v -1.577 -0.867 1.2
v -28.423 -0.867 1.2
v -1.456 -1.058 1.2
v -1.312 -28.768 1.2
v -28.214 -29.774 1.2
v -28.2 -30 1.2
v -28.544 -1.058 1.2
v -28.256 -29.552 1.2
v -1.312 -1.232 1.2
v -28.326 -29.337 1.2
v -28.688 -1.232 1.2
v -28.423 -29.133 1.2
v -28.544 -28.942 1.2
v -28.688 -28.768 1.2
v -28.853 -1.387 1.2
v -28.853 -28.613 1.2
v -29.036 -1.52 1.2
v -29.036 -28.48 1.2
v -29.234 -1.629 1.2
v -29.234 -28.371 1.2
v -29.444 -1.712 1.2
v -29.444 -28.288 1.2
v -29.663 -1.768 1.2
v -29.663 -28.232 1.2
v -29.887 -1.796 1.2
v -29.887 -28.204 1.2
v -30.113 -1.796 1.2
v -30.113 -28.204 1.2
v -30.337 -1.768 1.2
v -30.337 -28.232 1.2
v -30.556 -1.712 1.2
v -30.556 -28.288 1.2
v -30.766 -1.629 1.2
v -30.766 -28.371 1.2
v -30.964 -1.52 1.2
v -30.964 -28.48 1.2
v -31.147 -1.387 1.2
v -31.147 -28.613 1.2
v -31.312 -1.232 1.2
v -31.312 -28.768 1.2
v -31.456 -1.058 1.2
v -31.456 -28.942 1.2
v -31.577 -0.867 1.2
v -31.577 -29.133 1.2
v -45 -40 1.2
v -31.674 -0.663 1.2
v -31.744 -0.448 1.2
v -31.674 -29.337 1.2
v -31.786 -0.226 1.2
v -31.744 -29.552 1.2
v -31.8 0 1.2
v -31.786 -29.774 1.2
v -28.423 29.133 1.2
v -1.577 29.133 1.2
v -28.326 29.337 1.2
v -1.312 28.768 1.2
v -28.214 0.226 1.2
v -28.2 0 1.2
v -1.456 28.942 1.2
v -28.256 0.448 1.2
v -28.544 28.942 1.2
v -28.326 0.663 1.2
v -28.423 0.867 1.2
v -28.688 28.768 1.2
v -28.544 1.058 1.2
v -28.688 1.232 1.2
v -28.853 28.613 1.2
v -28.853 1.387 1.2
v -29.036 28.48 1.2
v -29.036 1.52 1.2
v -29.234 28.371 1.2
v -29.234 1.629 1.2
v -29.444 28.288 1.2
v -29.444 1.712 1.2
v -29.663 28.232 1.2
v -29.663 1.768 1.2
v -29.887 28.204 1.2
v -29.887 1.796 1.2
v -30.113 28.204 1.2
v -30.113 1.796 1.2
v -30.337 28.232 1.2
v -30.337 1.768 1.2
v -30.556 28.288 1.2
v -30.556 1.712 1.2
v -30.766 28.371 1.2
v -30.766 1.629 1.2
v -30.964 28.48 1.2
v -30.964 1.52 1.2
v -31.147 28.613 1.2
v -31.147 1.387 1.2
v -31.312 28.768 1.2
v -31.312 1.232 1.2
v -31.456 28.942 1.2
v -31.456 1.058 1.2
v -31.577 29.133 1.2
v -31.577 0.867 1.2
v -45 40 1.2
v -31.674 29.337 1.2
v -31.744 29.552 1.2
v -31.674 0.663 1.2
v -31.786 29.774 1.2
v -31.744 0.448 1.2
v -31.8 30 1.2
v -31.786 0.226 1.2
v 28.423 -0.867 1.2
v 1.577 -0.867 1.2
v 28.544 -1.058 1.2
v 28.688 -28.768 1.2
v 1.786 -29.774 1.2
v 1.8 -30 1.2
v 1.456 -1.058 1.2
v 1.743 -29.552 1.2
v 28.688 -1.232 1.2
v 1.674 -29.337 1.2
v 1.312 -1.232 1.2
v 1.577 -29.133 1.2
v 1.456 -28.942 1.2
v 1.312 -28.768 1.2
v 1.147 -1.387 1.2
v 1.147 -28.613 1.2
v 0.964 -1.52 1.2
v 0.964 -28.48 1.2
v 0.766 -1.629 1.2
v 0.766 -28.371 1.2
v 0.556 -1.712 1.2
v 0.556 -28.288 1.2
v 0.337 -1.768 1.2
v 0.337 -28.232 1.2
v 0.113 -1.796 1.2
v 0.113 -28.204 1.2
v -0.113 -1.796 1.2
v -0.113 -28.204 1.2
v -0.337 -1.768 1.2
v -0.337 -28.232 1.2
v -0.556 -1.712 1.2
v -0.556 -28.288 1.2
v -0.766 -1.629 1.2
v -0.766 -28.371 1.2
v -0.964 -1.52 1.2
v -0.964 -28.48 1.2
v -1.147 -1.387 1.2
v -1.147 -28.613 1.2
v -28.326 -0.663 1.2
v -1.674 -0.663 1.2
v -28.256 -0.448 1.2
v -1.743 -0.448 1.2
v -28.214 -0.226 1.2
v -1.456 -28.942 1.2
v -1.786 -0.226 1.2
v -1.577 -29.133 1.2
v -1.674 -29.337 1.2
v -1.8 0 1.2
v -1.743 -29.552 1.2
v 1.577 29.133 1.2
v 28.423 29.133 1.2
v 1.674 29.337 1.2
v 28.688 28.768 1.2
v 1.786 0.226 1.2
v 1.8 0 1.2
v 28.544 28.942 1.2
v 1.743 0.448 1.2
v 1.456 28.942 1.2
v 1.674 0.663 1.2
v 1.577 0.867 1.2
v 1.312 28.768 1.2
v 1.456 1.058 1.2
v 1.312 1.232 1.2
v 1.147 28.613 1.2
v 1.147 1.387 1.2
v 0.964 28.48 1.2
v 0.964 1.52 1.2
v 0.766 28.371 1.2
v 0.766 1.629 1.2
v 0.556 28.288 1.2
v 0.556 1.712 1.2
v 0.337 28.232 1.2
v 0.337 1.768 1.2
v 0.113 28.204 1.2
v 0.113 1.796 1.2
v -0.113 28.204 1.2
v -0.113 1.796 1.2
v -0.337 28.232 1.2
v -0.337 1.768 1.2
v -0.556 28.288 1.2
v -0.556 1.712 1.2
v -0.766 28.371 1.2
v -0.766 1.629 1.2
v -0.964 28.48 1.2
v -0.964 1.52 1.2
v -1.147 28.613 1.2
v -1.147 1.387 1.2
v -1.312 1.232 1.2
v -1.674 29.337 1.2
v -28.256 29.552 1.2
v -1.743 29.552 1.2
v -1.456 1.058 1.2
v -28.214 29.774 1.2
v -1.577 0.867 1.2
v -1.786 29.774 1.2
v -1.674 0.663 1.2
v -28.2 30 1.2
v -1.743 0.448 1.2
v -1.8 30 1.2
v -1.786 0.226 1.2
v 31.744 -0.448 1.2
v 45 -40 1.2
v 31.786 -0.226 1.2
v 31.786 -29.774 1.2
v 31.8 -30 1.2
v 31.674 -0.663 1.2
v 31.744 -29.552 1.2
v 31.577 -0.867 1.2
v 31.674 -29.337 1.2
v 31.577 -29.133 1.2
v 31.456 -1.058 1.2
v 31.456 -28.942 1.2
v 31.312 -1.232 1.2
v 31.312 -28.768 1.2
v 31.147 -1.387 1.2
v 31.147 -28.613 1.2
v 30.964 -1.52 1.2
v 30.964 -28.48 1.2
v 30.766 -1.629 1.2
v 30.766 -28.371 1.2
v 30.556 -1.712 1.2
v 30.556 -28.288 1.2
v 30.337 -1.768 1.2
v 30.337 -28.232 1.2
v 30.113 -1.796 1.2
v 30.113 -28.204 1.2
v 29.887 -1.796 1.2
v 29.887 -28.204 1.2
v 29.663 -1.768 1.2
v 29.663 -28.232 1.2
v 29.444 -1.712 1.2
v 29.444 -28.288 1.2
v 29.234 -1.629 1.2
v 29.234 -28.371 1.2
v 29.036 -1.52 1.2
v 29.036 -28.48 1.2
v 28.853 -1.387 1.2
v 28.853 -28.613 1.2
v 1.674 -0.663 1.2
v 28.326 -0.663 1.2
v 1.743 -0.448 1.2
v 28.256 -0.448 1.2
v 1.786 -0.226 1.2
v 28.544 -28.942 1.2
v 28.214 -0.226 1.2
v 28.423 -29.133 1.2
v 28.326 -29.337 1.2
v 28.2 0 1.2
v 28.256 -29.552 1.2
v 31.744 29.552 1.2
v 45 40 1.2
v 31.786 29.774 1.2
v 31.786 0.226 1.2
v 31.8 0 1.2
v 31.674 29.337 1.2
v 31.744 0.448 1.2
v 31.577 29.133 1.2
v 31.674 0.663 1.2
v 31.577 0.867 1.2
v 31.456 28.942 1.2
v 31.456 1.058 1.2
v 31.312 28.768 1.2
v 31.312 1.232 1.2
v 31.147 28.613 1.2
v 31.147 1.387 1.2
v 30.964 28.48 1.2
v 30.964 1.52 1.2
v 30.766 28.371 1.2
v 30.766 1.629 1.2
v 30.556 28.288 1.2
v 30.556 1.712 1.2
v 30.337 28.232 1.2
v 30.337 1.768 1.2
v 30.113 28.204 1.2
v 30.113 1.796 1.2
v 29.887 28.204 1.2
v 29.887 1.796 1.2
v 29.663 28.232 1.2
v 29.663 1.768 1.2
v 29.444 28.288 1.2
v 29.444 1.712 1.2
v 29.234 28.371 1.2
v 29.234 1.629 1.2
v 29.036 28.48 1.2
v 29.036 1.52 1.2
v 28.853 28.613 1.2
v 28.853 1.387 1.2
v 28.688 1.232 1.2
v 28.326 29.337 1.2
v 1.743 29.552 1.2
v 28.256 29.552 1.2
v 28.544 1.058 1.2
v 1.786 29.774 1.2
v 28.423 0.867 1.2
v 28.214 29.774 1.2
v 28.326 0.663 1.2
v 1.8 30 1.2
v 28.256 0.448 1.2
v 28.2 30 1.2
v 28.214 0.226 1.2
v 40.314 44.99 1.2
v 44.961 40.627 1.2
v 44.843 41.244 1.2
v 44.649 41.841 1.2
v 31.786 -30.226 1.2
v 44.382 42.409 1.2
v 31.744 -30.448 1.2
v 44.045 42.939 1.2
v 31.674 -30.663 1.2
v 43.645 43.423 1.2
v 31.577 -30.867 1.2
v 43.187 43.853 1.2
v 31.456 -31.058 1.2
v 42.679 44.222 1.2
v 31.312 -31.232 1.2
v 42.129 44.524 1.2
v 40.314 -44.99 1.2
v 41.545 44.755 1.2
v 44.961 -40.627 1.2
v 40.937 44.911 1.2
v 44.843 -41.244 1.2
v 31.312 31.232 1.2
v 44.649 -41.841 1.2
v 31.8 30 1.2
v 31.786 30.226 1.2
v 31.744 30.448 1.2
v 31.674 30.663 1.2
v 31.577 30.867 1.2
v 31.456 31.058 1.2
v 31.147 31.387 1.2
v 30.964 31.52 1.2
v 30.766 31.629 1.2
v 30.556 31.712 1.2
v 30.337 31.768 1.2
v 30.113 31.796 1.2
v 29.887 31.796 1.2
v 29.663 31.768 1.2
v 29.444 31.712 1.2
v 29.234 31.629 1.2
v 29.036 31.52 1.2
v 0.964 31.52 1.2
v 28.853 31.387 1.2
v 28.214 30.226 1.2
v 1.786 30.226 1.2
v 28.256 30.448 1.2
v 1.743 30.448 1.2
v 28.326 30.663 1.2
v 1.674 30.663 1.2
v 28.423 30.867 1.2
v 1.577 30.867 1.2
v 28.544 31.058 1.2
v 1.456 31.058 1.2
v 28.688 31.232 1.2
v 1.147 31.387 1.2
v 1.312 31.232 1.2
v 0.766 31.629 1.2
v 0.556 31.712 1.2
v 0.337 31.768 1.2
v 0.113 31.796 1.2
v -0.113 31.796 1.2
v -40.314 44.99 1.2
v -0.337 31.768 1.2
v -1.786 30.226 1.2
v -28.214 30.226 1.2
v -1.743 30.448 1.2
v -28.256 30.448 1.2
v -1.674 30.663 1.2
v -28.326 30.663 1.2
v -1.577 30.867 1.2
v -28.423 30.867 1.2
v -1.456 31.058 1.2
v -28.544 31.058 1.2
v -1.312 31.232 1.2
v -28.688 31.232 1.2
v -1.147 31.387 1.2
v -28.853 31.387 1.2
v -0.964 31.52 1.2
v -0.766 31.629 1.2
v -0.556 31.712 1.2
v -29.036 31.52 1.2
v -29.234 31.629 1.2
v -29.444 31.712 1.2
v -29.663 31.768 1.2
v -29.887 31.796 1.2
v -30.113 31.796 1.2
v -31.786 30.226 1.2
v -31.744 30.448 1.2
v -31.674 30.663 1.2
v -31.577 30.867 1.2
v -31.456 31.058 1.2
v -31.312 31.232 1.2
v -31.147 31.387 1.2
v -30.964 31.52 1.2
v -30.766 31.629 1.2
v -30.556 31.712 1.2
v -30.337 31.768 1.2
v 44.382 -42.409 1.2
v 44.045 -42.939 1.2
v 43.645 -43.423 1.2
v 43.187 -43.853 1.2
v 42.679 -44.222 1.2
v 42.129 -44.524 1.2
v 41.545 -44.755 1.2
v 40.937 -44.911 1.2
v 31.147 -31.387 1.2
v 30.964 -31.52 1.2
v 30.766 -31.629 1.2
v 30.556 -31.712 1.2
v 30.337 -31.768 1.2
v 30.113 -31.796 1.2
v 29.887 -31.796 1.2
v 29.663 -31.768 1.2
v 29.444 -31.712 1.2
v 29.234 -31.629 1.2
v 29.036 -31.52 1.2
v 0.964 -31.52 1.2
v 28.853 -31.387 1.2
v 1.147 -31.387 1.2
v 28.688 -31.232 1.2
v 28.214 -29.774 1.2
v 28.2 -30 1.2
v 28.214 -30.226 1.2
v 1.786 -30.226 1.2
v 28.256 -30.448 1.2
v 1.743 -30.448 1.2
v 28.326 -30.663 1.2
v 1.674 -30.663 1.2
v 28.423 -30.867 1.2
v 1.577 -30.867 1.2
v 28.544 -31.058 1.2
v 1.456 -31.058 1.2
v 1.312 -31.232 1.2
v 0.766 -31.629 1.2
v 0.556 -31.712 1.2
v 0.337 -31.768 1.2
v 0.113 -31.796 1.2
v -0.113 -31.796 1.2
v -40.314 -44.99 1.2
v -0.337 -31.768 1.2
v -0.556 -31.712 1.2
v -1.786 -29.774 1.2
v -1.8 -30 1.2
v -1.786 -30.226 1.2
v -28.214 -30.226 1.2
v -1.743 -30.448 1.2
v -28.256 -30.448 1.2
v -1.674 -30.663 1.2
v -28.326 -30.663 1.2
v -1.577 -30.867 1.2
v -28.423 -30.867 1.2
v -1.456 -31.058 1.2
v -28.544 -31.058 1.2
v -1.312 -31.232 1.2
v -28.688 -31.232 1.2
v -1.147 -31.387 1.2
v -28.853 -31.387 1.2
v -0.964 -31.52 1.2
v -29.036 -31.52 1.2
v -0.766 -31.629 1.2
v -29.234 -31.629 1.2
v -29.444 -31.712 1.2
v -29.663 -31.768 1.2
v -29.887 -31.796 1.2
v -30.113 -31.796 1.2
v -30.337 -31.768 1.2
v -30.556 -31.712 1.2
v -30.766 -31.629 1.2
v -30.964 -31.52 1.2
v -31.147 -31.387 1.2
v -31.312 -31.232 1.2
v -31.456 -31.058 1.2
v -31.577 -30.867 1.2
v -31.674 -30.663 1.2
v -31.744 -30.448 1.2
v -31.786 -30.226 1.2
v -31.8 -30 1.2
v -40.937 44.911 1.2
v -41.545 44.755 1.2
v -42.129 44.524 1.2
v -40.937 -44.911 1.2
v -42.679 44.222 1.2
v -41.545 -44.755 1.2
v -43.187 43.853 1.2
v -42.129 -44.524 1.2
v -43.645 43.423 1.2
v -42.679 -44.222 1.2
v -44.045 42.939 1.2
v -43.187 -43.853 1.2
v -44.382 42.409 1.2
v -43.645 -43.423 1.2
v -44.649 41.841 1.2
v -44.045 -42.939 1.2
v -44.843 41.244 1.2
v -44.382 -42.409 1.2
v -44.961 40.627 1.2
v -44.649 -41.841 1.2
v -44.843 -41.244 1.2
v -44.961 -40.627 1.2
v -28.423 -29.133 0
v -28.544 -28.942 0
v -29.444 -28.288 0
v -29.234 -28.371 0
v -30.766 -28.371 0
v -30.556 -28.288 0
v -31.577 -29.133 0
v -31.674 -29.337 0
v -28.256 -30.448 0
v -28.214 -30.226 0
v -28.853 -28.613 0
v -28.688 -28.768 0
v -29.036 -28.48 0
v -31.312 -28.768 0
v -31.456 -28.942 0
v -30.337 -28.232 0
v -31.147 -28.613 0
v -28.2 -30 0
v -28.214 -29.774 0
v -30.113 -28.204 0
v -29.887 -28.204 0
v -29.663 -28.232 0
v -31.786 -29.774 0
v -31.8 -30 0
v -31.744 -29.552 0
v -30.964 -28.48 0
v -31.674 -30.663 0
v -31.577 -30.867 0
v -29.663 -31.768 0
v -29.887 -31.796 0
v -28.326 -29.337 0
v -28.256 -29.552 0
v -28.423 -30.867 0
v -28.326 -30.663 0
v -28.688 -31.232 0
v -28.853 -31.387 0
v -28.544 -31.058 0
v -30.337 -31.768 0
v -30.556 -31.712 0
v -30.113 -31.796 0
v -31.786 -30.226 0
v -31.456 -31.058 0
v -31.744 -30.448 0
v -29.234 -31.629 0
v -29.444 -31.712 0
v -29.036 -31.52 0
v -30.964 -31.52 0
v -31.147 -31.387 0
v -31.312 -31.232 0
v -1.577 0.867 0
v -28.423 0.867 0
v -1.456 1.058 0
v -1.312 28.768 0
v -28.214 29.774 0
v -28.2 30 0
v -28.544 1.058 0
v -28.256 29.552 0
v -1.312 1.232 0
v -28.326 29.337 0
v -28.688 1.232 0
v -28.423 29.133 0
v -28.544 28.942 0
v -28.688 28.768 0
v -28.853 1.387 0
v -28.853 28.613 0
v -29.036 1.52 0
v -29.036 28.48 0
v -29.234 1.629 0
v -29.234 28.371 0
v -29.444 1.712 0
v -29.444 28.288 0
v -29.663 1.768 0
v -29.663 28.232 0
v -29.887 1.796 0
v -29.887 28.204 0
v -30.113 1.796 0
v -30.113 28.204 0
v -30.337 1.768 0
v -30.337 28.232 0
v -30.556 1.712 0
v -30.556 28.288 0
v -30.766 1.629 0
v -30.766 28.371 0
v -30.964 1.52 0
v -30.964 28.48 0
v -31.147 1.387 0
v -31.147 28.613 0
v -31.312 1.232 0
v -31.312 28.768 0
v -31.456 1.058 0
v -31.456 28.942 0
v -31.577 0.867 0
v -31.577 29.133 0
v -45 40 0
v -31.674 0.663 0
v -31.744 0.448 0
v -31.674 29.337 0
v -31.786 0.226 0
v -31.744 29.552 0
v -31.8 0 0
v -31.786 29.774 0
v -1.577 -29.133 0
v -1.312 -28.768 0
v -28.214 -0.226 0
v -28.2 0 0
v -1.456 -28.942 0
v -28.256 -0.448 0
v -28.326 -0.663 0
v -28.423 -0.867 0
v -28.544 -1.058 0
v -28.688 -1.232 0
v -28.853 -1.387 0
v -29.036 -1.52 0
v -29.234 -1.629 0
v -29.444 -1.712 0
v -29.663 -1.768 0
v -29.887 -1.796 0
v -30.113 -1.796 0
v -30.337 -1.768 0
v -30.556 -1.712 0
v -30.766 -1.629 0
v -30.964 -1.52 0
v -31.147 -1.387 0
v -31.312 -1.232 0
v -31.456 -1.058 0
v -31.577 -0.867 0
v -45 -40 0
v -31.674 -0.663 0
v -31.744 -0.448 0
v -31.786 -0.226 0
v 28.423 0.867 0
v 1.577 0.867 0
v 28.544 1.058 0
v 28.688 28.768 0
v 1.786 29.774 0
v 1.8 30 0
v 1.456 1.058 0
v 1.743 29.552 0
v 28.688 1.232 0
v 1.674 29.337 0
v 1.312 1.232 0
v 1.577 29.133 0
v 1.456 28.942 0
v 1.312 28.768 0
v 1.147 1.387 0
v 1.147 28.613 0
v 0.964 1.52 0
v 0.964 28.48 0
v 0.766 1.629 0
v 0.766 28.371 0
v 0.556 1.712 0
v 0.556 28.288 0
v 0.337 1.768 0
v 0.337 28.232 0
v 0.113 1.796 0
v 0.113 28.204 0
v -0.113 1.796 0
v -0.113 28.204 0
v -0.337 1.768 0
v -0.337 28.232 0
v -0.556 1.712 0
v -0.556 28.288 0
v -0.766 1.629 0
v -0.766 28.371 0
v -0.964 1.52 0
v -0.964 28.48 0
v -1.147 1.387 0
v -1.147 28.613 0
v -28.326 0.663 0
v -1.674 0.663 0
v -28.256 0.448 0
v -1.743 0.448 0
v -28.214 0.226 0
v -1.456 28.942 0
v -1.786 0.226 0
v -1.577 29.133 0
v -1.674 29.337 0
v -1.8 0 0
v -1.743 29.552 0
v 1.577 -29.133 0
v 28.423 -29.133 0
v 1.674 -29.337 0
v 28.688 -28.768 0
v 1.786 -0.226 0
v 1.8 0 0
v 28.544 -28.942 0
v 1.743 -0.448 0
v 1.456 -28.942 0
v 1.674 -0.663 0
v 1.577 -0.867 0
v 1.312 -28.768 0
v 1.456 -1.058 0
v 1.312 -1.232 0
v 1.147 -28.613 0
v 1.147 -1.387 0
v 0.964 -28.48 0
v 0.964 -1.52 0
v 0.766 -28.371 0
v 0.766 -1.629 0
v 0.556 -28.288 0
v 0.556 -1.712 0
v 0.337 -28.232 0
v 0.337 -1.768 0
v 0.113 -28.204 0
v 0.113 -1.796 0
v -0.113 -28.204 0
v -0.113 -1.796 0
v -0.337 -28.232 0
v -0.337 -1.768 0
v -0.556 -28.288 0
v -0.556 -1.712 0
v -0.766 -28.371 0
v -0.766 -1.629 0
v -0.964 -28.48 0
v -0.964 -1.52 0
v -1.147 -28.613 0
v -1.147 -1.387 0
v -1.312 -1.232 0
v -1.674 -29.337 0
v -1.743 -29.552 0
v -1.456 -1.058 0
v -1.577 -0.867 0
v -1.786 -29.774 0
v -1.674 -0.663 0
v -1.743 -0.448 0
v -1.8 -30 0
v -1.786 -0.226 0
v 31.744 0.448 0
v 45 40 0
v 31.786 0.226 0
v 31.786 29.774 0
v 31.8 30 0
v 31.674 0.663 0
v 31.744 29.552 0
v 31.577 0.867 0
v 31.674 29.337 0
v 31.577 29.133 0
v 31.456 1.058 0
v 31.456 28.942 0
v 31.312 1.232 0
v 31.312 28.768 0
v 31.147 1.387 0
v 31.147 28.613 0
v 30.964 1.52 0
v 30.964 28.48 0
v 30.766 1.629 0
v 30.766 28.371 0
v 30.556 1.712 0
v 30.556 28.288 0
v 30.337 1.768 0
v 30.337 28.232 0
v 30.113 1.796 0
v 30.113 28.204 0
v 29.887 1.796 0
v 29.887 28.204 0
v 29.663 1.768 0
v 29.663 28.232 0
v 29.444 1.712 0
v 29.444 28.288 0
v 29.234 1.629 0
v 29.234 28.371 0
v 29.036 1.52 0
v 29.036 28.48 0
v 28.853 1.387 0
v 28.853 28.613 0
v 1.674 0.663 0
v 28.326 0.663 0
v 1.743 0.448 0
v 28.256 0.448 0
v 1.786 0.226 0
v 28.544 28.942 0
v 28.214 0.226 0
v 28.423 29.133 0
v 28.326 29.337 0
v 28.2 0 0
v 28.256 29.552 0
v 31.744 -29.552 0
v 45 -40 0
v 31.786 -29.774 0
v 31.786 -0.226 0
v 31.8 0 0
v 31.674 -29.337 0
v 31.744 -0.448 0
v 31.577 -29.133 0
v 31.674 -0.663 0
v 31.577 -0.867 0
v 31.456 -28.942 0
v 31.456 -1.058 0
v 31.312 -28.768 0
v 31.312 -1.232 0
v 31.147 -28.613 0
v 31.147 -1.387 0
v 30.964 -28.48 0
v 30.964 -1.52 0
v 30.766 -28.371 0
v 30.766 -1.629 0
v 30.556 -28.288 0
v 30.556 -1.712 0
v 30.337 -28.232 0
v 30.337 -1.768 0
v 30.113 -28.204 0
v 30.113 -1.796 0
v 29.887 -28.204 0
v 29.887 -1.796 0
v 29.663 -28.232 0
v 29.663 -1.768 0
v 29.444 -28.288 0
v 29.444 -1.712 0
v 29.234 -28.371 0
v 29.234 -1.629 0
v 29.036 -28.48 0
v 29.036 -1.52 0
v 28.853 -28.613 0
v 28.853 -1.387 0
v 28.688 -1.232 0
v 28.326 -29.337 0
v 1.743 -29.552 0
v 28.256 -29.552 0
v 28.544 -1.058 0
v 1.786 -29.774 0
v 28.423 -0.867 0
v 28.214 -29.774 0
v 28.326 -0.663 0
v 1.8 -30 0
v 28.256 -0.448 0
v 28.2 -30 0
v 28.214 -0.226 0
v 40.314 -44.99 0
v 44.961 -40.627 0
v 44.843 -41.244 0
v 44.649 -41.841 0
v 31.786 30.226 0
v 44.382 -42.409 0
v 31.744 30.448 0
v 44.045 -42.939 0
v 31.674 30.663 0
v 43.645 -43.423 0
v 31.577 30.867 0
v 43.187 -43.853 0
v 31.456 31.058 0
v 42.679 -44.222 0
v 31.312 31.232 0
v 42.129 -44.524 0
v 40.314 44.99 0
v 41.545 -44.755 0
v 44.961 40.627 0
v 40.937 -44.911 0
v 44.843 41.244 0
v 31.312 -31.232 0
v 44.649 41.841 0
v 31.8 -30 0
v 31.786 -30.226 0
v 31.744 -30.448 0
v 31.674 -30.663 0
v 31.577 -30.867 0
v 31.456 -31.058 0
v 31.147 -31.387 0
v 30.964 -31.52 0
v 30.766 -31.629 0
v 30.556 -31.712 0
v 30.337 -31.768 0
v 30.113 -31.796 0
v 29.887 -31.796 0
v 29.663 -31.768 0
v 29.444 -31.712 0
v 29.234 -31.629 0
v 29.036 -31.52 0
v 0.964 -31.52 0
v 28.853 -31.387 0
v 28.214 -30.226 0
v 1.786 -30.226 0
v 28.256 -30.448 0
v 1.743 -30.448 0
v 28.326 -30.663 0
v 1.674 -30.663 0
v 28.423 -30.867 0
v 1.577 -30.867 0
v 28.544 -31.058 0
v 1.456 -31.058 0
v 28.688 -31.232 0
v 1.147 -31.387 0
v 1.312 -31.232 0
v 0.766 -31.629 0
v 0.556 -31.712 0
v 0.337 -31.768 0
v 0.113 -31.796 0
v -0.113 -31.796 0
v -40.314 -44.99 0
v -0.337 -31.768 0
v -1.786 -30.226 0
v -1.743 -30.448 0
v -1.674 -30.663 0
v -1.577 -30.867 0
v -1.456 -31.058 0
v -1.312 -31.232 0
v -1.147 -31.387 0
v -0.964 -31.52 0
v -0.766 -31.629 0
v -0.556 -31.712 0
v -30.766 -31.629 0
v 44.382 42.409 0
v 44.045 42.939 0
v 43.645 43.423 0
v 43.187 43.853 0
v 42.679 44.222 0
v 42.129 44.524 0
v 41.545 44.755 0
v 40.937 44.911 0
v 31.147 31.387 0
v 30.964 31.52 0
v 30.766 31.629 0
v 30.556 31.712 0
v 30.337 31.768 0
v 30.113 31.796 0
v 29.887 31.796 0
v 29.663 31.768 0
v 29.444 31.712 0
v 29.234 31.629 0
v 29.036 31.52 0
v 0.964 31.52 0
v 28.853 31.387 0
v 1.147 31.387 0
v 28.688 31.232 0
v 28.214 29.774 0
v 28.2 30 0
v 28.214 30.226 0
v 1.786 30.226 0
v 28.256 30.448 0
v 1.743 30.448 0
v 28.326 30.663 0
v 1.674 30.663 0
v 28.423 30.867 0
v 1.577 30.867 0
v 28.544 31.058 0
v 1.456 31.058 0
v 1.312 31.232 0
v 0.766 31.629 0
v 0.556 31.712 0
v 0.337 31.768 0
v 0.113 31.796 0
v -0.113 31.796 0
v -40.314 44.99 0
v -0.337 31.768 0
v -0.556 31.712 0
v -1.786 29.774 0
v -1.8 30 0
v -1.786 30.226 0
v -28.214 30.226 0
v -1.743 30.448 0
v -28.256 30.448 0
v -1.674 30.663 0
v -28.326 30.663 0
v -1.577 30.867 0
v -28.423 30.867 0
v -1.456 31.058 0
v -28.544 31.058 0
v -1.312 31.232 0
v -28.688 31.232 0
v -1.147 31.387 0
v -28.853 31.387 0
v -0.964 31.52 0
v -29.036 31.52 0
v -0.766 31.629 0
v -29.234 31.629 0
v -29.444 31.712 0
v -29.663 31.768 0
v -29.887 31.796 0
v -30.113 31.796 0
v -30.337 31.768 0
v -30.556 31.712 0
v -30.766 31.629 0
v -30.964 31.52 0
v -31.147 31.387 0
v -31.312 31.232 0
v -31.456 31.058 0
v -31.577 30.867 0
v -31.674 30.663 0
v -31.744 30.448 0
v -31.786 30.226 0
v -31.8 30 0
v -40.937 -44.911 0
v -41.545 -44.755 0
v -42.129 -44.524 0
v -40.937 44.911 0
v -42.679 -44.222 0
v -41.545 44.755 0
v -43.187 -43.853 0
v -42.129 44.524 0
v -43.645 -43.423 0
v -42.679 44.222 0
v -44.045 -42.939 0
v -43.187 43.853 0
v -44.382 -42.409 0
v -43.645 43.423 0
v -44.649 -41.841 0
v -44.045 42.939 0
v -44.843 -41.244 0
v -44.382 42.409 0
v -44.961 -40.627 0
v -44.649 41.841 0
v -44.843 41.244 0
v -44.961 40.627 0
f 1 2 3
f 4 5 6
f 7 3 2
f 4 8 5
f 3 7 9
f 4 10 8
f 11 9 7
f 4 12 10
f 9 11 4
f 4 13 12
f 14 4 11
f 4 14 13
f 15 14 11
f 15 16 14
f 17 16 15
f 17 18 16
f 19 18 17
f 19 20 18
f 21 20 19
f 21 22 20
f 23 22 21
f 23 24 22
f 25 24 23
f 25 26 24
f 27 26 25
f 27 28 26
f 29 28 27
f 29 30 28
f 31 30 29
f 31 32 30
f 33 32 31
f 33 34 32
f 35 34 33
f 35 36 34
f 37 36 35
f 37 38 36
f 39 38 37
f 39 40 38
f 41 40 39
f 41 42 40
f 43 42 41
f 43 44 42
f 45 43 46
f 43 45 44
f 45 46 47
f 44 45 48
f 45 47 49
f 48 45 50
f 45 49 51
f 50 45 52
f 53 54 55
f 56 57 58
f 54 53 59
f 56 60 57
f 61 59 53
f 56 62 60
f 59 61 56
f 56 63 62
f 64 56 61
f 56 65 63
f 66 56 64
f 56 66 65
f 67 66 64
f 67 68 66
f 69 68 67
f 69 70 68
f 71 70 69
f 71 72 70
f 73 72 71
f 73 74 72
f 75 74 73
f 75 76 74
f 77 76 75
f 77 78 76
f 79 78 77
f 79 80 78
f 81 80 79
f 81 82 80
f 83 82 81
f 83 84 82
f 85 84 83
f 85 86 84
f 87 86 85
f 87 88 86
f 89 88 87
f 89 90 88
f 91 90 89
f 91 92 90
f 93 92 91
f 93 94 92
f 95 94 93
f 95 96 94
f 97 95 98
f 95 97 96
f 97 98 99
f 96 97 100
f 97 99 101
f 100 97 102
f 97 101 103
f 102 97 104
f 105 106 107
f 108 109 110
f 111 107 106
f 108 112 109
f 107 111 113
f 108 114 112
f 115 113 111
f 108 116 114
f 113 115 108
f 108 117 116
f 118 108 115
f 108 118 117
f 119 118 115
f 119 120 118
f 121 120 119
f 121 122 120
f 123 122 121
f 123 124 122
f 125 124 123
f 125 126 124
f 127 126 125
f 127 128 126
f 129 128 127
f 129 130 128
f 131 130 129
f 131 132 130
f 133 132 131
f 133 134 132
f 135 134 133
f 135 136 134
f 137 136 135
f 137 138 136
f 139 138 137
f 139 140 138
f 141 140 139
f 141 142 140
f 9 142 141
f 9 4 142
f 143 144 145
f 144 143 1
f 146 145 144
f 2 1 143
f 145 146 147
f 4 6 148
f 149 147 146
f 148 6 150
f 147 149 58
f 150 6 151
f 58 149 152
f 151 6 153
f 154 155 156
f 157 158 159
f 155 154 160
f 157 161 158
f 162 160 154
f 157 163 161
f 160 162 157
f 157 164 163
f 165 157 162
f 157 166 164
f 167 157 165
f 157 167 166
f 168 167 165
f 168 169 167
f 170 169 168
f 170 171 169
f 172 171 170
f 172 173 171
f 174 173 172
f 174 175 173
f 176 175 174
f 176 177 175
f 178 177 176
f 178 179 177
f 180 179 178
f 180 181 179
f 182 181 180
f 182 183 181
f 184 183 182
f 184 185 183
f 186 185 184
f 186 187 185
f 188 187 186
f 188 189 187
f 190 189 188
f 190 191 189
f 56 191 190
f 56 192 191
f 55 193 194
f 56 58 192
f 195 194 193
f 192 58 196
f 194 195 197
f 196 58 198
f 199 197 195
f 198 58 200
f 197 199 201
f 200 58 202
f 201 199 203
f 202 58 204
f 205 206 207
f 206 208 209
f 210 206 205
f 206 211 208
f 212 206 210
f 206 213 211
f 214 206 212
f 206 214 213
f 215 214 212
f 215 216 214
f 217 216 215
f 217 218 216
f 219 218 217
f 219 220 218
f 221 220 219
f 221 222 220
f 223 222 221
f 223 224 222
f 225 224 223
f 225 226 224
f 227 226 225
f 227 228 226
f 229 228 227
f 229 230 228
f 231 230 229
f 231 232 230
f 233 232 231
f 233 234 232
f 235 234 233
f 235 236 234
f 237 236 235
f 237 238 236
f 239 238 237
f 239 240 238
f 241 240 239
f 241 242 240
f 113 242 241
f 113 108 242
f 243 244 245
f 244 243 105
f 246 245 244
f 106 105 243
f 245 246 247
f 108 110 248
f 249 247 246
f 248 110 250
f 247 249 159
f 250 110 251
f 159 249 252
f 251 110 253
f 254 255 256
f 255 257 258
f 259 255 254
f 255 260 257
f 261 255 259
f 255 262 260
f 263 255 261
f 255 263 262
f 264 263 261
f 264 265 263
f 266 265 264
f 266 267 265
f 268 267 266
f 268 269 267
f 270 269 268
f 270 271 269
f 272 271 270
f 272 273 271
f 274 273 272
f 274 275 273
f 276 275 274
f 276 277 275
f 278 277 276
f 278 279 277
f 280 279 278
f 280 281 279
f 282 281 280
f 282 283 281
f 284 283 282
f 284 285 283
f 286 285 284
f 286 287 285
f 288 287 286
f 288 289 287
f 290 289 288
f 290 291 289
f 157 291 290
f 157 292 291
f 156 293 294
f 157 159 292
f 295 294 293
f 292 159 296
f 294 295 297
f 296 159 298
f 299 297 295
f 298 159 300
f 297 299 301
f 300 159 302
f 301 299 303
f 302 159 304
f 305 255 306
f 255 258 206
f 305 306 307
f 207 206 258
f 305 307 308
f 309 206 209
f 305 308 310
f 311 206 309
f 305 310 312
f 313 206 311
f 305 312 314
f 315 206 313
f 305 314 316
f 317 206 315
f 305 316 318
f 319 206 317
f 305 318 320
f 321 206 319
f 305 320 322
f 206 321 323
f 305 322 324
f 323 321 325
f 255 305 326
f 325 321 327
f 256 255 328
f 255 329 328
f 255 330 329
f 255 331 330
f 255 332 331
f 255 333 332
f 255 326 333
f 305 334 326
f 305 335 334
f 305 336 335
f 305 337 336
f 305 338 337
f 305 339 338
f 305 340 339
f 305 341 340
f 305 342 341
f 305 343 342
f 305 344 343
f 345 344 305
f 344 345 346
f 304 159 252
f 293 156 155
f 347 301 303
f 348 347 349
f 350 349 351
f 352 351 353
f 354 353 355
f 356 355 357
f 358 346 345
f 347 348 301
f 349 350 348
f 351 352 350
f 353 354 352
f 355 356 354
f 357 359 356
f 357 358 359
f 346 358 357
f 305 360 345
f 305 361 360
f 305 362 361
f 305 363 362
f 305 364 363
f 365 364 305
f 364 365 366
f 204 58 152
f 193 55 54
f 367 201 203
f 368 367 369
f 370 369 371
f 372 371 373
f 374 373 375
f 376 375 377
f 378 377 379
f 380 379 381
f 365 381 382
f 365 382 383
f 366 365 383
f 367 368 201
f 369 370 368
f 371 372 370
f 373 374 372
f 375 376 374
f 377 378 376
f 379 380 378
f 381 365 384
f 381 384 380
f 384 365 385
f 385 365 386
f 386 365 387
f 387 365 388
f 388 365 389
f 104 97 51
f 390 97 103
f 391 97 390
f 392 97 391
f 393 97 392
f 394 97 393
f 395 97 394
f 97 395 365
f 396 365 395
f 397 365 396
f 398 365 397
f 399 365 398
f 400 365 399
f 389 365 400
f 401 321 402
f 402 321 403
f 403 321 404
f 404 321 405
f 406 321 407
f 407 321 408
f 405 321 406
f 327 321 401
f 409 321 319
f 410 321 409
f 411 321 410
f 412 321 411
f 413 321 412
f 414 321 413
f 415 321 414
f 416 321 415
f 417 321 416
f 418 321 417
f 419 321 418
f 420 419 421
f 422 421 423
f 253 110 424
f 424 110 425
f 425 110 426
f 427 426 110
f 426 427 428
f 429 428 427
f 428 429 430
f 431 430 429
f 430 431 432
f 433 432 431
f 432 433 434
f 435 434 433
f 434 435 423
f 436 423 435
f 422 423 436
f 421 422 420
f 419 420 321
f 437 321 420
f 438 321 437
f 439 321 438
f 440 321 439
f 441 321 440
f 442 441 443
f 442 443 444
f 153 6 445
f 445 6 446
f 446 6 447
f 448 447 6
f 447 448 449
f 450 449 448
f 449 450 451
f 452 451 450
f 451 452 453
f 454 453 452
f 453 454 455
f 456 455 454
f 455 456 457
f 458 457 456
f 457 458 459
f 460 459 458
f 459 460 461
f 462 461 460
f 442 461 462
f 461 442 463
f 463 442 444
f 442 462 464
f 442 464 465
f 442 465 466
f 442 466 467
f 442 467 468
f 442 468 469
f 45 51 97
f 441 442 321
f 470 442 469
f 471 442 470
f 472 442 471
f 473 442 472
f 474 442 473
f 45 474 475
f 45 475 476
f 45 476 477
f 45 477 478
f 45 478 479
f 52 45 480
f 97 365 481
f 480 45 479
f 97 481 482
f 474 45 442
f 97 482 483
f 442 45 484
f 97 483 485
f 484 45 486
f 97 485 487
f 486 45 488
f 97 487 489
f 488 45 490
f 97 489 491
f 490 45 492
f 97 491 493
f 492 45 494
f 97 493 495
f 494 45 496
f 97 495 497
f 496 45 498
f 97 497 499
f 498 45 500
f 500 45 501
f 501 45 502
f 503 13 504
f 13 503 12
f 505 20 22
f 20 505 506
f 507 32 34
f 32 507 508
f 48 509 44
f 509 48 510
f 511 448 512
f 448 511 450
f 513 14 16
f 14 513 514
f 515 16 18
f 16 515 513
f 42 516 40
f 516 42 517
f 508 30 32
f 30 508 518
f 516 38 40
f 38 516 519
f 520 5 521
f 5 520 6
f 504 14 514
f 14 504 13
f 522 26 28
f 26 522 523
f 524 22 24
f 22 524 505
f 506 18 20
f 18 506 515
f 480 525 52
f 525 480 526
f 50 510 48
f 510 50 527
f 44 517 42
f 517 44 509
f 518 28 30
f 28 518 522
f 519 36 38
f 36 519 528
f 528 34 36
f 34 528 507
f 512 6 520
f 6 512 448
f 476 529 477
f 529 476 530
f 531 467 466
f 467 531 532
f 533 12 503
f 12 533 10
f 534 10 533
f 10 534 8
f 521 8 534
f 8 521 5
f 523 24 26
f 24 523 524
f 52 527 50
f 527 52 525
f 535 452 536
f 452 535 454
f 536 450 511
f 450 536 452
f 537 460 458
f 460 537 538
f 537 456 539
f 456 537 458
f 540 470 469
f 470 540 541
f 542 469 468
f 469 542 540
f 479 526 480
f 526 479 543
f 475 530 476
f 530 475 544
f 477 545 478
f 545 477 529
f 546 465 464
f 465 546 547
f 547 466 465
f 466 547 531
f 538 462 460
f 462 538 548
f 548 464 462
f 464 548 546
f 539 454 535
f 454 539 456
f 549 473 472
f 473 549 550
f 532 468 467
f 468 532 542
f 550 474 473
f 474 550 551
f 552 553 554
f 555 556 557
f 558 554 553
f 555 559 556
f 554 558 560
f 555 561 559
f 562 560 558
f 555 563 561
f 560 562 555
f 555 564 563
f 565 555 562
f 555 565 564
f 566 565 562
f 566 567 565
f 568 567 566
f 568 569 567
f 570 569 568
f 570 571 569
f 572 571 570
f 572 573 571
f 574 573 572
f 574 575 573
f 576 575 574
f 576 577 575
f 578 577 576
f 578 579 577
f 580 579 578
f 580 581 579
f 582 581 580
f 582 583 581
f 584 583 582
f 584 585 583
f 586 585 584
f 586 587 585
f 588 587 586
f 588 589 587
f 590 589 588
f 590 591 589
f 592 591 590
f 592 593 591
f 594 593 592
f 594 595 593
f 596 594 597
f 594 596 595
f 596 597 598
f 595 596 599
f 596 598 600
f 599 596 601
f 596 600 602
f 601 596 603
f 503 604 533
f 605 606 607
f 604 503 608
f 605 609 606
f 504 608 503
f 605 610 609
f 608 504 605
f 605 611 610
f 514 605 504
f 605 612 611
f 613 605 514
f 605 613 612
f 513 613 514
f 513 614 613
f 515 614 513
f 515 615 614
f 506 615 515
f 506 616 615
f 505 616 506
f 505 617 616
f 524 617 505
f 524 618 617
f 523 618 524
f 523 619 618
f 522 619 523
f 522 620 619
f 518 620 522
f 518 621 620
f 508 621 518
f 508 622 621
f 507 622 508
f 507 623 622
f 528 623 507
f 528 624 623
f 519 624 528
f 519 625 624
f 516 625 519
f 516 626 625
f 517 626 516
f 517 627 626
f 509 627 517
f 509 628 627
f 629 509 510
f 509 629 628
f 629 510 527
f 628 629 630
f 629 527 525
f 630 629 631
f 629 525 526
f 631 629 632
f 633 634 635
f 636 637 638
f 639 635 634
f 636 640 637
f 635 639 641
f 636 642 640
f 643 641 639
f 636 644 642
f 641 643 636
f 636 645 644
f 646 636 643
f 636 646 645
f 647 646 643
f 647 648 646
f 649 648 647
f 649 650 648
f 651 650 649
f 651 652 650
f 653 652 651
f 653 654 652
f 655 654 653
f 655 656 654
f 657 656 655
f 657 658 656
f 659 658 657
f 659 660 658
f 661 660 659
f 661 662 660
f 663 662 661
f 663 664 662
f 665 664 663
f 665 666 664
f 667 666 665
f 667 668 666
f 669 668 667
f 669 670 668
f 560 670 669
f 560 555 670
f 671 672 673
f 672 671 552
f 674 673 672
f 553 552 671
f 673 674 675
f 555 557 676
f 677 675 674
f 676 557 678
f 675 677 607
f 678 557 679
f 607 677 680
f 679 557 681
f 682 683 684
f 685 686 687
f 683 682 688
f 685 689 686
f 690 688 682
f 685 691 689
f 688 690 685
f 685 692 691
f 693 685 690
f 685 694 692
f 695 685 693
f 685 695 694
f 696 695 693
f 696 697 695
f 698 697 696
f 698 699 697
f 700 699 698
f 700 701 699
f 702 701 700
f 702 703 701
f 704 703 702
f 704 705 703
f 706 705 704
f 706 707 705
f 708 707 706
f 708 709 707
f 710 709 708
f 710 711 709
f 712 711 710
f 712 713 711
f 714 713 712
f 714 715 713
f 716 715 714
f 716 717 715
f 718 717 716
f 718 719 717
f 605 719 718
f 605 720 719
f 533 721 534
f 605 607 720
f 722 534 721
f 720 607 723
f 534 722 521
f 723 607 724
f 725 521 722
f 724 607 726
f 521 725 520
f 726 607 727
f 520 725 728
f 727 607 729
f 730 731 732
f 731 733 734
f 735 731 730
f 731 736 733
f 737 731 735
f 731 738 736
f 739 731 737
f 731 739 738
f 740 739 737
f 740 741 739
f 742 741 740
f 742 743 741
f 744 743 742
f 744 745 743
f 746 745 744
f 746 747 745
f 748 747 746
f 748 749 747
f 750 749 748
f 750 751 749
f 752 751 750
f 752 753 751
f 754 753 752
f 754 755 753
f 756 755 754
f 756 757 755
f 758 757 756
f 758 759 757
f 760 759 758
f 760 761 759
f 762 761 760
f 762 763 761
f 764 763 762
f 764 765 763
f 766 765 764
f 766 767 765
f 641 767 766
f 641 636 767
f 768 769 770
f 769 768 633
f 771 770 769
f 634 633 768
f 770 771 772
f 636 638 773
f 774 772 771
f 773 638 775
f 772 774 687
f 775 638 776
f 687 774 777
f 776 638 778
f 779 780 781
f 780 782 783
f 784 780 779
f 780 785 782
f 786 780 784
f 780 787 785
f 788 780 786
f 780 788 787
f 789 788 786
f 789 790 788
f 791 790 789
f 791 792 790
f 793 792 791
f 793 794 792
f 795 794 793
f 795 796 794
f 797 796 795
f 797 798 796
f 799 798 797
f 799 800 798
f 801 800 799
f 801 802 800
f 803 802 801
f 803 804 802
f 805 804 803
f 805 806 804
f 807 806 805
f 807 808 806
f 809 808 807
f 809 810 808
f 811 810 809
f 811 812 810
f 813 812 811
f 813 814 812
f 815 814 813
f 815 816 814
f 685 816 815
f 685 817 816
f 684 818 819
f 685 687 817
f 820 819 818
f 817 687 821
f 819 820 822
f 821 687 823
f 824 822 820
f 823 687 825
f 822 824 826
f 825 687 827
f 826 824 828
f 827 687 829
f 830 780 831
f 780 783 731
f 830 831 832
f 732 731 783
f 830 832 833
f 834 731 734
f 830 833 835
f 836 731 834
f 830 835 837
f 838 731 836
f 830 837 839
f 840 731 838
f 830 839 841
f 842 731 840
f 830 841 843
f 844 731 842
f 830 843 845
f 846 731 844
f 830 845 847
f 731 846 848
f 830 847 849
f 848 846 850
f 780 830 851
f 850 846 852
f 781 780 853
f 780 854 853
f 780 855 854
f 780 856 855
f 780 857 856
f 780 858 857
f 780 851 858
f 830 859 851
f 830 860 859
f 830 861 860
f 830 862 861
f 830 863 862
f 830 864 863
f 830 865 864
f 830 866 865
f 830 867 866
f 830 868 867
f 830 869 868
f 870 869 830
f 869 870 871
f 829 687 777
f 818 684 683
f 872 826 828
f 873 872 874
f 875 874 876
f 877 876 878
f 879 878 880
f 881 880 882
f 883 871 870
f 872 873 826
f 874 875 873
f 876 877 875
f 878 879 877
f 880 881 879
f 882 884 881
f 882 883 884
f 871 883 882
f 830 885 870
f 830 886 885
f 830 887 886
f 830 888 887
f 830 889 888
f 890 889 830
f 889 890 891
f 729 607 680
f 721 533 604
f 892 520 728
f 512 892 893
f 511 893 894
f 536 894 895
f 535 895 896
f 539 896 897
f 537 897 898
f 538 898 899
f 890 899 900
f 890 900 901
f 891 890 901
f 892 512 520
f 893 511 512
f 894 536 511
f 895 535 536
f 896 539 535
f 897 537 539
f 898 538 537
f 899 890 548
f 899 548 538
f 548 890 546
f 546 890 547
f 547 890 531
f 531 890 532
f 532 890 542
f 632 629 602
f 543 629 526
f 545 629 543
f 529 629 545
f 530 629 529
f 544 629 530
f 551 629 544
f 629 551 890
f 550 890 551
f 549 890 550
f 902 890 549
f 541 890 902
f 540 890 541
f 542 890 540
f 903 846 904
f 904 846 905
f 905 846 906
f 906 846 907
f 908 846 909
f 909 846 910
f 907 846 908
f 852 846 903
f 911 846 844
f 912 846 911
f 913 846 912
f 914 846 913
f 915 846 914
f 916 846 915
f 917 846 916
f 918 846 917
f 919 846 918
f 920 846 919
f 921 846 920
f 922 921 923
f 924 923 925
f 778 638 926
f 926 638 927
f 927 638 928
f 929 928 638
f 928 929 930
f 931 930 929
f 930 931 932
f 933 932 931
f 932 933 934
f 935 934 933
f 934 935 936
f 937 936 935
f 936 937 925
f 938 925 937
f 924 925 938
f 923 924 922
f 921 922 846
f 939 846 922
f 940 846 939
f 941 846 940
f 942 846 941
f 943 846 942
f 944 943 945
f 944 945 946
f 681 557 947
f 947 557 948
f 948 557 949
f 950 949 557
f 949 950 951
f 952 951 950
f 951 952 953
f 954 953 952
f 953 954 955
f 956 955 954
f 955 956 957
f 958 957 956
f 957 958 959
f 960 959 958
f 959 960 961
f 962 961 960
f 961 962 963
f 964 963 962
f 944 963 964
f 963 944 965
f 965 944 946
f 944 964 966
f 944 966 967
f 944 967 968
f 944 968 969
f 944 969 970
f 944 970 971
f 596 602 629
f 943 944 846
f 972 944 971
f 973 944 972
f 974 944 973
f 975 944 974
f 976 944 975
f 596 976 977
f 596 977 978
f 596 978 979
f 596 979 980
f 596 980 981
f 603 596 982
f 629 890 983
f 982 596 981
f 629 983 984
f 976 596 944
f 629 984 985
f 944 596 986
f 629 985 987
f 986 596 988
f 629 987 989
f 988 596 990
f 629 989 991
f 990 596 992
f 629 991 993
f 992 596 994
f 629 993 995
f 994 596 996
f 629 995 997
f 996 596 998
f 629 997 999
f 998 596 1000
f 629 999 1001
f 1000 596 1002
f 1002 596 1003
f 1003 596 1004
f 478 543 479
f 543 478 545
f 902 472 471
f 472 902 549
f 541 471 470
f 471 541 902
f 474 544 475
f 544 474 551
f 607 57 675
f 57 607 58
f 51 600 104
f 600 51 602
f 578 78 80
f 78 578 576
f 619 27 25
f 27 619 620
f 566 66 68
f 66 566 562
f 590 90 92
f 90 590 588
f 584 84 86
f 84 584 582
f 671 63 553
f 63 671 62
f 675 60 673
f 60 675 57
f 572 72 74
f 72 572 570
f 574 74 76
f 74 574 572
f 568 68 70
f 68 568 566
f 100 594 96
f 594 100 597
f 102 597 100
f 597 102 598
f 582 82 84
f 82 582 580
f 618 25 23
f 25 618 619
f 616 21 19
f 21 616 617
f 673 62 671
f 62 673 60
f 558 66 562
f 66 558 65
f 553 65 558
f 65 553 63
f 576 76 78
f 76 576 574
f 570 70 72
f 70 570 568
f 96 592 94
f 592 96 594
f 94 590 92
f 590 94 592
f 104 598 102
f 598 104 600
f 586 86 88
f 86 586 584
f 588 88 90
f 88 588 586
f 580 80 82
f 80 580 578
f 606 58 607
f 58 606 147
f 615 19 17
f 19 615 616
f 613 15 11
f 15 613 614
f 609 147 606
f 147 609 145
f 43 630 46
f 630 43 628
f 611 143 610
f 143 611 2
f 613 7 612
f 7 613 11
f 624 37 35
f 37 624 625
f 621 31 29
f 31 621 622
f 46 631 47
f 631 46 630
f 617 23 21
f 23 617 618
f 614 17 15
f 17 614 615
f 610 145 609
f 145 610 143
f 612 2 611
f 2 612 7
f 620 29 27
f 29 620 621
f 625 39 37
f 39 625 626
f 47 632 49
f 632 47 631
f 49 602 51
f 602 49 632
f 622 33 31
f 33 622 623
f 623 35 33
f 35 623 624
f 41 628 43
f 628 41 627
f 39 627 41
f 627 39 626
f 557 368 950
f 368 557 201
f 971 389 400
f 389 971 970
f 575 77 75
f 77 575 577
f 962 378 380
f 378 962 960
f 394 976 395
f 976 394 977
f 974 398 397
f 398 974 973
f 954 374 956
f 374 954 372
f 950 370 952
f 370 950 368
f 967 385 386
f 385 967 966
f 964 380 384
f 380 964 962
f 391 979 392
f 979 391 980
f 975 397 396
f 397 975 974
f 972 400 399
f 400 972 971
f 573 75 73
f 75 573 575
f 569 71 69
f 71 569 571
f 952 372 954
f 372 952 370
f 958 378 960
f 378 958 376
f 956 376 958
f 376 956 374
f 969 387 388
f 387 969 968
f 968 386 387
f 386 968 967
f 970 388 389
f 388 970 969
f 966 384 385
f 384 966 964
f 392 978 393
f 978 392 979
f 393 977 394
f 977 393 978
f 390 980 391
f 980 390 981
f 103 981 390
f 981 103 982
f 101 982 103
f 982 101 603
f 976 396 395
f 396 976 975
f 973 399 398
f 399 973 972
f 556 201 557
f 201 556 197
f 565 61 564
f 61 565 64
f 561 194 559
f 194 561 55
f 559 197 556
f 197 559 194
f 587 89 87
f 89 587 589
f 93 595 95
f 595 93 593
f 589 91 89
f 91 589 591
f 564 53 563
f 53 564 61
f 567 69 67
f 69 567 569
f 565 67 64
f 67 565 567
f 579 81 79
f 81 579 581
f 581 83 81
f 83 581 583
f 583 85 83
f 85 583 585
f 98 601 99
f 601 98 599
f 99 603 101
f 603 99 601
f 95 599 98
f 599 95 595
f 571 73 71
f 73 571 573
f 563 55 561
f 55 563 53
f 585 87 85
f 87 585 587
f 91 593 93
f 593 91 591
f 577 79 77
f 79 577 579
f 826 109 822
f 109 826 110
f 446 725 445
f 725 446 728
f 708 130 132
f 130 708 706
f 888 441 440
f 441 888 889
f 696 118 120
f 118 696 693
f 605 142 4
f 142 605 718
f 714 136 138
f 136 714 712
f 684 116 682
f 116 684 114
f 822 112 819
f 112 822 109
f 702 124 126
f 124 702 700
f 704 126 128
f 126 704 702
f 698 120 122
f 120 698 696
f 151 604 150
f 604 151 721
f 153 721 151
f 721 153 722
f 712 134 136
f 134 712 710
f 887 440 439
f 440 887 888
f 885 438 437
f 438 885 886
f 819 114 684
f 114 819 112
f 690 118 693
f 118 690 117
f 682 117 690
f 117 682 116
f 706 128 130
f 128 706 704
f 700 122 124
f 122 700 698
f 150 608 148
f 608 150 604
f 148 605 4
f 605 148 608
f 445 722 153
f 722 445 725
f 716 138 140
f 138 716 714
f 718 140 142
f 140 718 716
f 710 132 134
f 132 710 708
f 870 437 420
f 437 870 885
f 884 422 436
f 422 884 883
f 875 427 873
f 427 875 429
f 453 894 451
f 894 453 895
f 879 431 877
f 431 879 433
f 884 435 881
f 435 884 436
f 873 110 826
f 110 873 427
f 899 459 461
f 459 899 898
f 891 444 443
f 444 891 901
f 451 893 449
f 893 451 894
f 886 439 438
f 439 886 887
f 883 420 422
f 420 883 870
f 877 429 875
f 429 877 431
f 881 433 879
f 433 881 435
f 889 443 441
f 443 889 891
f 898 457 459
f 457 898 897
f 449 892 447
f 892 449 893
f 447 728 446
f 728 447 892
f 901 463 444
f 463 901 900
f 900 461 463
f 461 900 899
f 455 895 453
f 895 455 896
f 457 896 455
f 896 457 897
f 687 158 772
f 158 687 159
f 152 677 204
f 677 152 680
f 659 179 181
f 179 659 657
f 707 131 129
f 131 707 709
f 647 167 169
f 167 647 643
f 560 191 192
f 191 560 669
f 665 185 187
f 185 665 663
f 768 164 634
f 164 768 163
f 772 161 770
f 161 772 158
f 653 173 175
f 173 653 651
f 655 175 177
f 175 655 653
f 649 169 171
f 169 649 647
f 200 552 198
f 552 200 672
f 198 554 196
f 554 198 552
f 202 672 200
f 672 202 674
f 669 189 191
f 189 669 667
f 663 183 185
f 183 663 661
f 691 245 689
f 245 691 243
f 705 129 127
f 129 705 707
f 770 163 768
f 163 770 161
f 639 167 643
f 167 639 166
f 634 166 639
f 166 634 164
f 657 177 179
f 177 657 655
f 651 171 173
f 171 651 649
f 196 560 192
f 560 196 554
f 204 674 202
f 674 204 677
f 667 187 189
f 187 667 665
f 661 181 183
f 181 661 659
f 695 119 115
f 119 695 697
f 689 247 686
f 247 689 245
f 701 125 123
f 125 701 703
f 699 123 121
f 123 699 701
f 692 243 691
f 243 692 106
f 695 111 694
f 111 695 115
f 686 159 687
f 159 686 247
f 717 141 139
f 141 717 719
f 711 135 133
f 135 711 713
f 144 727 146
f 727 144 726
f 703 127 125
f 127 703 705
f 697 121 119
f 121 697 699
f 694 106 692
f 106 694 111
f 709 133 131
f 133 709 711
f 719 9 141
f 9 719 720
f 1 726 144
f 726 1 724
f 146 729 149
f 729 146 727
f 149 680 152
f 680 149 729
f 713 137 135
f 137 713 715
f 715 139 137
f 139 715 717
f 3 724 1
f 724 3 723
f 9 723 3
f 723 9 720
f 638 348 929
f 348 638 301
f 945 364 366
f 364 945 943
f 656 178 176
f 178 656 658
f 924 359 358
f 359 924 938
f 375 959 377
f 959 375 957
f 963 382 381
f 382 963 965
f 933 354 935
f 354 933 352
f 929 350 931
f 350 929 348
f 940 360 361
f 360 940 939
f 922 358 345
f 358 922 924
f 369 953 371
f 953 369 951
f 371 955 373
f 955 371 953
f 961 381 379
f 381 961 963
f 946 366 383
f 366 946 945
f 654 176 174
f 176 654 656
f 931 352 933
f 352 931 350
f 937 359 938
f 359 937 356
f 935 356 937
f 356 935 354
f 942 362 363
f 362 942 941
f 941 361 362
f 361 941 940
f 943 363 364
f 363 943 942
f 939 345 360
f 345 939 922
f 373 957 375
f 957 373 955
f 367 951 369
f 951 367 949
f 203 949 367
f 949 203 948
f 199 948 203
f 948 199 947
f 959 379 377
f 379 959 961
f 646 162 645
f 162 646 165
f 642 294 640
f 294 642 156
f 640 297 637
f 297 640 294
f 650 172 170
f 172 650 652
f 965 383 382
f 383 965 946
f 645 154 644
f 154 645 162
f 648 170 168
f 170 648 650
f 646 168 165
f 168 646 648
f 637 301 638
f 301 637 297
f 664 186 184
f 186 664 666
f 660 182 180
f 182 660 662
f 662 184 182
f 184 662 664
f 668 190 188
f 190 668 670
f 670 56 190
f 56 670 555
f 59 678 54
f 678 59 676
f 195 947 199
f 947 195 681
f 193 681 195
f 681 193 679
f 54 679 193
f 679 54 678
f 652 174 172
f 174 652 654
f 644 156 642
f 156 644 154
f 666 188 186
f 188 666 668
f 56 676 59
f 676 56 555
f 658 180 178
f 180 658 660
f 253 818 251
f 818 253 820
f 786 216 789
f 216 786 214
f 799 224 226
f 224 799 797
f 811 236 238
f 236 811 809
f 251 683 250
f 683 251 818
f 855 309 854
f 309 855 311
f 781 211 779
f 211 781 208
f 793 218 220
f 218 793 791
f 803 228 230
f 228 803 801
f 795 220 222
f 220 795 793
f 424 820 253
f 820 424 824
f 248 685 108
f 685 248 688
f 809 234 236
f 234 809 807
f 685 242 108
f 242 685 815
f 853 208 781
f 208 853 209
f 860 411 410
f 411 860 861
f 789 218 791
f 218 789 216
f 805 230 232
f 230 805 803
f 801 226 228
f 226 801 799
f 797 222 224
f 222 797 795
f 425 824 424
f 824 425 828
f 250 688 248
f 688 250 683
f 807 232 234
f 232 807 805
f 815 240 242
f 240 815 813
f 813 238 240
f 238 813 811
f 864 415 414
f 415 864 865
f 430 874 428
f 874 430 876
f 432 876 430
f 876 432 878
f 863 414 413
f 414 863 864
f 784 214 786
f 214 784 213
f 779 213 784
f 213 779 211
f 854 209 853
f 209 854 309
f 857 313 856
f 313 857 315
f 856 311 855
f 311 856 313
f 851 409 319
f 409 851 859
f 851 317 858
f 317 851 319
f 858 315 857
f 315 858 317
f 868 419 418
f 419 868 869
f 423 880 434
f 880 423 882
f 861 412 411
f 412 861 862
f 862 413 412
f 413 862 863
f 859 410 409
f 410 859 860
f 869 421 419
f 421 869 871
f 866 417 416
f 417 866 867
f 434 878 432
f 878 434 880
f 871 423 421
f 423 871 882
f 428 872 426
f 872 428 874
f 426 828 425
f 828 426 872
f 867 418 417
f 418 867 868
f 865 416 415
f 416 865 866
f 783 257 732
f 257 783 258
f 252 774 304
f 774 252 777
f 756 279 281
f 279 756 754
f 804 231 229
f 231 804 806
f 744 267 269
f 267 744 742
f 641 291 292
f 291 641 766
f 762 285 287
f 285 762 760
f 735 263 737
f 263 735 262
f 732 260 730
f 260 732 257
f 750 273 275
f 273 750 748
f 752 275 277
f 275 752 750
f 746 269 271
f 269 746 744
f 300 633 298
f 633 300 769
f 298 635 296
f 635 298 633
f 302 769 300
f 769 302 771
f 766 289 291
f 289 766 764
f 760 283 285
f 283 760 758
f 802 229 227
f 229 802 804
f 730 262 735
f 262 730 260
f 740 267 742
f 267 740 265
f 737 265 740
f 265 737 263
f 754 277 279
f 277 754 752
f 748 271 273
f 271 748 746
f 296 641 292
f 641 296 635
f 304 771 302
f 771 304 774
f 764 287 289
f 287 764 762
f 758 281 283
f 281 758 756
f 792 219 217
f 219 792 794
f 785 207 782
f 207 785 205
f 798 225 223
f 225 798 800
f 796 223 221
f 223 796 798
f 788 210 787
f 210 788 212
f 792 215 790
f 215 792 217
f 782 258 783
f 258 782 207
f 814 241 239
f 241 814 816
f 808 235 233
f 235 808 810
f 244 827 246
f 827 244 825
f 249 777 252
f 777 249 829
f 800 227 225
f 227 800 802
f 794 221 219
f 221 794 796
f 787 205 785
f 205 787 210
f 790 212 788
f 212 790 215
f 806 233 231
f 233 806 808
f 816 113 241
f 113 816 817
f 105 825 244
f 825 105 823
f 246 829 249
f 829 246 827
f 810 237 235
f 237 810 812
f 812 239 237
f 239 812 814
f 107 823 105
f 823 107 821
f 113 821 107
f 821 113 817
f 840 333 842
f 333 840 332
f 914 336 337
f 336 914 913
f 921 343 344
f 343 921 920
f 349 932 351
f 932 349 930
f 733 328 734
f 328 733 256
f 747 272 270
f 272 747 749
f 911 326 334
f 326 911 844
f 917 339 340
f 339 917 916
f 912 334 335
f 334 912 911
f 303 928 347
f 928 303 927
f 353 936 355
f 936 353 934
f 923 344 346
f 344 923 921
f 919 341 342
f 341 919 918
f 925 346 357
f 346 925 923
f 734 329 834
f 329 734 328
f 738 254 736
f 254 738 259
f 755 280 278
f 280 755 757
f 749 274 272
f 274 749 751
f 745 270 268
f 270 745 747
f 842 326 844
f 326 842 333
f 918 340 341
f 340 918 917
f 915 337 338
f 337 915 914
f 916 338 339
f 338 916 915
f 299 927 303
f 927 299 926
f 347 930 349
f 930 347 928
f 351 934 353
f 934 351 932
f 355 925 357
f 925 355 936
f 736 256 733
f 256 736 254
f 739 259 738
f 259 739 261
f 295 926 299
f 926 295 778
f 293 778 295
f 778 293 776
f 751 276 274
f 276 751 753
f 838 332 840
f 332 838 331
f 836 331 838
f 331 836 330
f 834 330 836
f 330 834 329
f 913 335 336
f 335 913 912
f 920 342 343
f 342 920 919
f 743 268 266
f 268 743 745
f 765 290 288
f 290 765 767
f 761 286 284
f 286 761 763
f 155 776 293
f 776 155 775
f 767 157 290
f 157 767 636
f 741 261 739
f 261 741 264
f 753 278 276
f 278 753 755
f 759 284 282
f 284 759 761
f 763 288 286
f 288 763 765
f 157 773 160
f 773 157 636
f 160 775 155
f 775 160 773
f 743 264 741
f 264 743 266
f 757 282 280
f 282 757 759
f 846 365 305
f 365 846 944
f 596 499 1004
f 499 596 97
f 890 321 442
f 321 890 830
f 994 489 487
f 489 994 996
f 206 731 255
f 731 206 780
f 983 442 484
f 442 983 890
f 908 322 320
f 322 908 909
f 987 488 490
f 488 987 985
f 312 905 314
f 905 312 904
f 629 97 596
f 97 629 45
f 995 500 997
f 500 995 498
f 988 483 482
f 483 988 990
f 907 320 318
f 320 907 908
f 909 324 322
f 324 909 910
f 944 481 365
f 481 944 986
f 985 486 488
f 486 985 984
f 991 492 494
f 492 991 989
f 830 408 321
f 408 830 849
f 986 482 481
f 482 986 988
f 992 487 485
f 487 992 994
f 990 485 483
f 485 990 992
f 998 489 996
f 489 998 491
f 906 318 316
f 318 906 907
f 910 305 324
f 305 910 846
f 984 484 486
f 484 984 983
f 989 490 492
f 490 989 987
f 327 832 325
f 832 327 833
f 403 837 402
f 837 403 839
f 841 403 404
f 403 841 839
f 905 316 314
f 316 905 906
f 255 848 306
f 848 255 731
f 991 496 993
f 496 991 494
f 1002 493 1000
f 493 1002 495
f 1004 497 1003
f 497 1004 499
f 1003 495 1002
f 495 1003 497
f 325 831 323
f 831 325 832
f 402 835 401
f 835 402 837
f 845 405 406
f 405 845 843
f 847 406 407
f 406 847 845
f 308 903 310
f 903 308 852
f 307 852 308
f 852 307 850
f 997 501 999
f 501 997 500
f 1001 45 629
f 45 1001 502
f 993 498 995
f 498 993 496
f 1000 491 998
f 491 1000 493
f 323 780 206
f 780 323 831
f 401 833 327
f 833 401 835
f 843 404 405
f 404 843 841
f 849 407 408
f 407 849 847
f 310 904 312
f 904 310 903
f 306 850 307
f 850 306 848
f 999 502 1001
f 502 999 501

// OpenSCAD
$fn = 50;


difference() {
	union() {
		hull() {
			translate(v = [-40.0000000000, 40.0000000000, 0]) {
				cylinder(h = 60, r = 5);
			}
			translate(v = [40.0000000000, 40.0000000000, 0]) {
				cylinder(h = 60, r = 5);
			}
			translate(v = [-40.0000000000, -40.0000000000, 0]) {
				cylinder(h = 60, r = 5);
			}
			translate(v = [40.0000000000, -40.0000000000, 0]) {
				cylinder(h = 60, r = 5);
			}
		}
	}
	union() {
		translate(v = [0, 0, 1.2000000000]) {
			hull() {
				translate(v = [-40.0000000000, 40.0000000000, 0]) {
					cylinder(h = 58.8000000000, r = 3.8000000000);
				}
				translate(v = [40.0000000000, 40.0000000000, 0]) {
					cylinder(h = 58.8000000000, r = 3.8000000000);
				}
				translate(v = [-40.0000000000, -40.0000000000, 0]) {
					cylinder(h = 58.8000000000, r = 3.8000000000);
				}
				translate(v = [40.0000000000, -40.0000000000, 0]) {
					cylinder(h = 58.8000000000, r = 3.8000000000);
				}
			}
		}
		#translate(v = [-30.0000000000, -30.0000000000, 0]) {
			cylinder(h = 1.2000000000, r = 1.8000000000);
		}
		#translate(v = [-30.0000000000, 0.0000000000, 0]) {
			cylinder(h = 1.2000000000, r = 1.8000000000);
		}
		#translate(v = [-30.0000000000, 30.0000000000, 0]) {
			cylinder(h = 1.2000000000, r = 1.8000000000);
		}
		#translate(v = [0.0000000000, -30.0000000000, 0]) {
			cylinder(h = 1.2000000000, r = 1.8000000000);
		}
		#cylinder(h = 1.2000000000, r = 1.8000000000);
		#translate(v = [0.0000000000, 30.0000000000, 0]) {
			cylinder(h = 1.2000000000, r = 1.8000000000);
		}
		#translate(v = [30.0000000000, -30.0000000000, 0]) {
			cylinder(h = 1.2000000000, r = 1.8000000000);
		}
		#translate(v = [30.0000000000, 0.0000000000, 0]) {
			cylinder(h = 1.2000000000, r = 1.8000000000);
		}
		#translate(v = [30.0000000000, 30.0000000000, 0]) {
			cylinder(h = 1.2000000000, r = 1.8000000000);
		}
		translate(v = [-250.0000000000, -250.0000000000, 1.2000000000]) {
			cube(size = [500, 500, 500]);
		}
		translate(v = [-250.0000000000, -250.0000000000, 1.2000000000]) {
			cube(size = [500, 500, 500]);
		}
		translate(v = [-250.0000000000, -250.0000000000, 1.2000000000]) {
			cube(size = [500, 500, 500]);
		}
	}
}
